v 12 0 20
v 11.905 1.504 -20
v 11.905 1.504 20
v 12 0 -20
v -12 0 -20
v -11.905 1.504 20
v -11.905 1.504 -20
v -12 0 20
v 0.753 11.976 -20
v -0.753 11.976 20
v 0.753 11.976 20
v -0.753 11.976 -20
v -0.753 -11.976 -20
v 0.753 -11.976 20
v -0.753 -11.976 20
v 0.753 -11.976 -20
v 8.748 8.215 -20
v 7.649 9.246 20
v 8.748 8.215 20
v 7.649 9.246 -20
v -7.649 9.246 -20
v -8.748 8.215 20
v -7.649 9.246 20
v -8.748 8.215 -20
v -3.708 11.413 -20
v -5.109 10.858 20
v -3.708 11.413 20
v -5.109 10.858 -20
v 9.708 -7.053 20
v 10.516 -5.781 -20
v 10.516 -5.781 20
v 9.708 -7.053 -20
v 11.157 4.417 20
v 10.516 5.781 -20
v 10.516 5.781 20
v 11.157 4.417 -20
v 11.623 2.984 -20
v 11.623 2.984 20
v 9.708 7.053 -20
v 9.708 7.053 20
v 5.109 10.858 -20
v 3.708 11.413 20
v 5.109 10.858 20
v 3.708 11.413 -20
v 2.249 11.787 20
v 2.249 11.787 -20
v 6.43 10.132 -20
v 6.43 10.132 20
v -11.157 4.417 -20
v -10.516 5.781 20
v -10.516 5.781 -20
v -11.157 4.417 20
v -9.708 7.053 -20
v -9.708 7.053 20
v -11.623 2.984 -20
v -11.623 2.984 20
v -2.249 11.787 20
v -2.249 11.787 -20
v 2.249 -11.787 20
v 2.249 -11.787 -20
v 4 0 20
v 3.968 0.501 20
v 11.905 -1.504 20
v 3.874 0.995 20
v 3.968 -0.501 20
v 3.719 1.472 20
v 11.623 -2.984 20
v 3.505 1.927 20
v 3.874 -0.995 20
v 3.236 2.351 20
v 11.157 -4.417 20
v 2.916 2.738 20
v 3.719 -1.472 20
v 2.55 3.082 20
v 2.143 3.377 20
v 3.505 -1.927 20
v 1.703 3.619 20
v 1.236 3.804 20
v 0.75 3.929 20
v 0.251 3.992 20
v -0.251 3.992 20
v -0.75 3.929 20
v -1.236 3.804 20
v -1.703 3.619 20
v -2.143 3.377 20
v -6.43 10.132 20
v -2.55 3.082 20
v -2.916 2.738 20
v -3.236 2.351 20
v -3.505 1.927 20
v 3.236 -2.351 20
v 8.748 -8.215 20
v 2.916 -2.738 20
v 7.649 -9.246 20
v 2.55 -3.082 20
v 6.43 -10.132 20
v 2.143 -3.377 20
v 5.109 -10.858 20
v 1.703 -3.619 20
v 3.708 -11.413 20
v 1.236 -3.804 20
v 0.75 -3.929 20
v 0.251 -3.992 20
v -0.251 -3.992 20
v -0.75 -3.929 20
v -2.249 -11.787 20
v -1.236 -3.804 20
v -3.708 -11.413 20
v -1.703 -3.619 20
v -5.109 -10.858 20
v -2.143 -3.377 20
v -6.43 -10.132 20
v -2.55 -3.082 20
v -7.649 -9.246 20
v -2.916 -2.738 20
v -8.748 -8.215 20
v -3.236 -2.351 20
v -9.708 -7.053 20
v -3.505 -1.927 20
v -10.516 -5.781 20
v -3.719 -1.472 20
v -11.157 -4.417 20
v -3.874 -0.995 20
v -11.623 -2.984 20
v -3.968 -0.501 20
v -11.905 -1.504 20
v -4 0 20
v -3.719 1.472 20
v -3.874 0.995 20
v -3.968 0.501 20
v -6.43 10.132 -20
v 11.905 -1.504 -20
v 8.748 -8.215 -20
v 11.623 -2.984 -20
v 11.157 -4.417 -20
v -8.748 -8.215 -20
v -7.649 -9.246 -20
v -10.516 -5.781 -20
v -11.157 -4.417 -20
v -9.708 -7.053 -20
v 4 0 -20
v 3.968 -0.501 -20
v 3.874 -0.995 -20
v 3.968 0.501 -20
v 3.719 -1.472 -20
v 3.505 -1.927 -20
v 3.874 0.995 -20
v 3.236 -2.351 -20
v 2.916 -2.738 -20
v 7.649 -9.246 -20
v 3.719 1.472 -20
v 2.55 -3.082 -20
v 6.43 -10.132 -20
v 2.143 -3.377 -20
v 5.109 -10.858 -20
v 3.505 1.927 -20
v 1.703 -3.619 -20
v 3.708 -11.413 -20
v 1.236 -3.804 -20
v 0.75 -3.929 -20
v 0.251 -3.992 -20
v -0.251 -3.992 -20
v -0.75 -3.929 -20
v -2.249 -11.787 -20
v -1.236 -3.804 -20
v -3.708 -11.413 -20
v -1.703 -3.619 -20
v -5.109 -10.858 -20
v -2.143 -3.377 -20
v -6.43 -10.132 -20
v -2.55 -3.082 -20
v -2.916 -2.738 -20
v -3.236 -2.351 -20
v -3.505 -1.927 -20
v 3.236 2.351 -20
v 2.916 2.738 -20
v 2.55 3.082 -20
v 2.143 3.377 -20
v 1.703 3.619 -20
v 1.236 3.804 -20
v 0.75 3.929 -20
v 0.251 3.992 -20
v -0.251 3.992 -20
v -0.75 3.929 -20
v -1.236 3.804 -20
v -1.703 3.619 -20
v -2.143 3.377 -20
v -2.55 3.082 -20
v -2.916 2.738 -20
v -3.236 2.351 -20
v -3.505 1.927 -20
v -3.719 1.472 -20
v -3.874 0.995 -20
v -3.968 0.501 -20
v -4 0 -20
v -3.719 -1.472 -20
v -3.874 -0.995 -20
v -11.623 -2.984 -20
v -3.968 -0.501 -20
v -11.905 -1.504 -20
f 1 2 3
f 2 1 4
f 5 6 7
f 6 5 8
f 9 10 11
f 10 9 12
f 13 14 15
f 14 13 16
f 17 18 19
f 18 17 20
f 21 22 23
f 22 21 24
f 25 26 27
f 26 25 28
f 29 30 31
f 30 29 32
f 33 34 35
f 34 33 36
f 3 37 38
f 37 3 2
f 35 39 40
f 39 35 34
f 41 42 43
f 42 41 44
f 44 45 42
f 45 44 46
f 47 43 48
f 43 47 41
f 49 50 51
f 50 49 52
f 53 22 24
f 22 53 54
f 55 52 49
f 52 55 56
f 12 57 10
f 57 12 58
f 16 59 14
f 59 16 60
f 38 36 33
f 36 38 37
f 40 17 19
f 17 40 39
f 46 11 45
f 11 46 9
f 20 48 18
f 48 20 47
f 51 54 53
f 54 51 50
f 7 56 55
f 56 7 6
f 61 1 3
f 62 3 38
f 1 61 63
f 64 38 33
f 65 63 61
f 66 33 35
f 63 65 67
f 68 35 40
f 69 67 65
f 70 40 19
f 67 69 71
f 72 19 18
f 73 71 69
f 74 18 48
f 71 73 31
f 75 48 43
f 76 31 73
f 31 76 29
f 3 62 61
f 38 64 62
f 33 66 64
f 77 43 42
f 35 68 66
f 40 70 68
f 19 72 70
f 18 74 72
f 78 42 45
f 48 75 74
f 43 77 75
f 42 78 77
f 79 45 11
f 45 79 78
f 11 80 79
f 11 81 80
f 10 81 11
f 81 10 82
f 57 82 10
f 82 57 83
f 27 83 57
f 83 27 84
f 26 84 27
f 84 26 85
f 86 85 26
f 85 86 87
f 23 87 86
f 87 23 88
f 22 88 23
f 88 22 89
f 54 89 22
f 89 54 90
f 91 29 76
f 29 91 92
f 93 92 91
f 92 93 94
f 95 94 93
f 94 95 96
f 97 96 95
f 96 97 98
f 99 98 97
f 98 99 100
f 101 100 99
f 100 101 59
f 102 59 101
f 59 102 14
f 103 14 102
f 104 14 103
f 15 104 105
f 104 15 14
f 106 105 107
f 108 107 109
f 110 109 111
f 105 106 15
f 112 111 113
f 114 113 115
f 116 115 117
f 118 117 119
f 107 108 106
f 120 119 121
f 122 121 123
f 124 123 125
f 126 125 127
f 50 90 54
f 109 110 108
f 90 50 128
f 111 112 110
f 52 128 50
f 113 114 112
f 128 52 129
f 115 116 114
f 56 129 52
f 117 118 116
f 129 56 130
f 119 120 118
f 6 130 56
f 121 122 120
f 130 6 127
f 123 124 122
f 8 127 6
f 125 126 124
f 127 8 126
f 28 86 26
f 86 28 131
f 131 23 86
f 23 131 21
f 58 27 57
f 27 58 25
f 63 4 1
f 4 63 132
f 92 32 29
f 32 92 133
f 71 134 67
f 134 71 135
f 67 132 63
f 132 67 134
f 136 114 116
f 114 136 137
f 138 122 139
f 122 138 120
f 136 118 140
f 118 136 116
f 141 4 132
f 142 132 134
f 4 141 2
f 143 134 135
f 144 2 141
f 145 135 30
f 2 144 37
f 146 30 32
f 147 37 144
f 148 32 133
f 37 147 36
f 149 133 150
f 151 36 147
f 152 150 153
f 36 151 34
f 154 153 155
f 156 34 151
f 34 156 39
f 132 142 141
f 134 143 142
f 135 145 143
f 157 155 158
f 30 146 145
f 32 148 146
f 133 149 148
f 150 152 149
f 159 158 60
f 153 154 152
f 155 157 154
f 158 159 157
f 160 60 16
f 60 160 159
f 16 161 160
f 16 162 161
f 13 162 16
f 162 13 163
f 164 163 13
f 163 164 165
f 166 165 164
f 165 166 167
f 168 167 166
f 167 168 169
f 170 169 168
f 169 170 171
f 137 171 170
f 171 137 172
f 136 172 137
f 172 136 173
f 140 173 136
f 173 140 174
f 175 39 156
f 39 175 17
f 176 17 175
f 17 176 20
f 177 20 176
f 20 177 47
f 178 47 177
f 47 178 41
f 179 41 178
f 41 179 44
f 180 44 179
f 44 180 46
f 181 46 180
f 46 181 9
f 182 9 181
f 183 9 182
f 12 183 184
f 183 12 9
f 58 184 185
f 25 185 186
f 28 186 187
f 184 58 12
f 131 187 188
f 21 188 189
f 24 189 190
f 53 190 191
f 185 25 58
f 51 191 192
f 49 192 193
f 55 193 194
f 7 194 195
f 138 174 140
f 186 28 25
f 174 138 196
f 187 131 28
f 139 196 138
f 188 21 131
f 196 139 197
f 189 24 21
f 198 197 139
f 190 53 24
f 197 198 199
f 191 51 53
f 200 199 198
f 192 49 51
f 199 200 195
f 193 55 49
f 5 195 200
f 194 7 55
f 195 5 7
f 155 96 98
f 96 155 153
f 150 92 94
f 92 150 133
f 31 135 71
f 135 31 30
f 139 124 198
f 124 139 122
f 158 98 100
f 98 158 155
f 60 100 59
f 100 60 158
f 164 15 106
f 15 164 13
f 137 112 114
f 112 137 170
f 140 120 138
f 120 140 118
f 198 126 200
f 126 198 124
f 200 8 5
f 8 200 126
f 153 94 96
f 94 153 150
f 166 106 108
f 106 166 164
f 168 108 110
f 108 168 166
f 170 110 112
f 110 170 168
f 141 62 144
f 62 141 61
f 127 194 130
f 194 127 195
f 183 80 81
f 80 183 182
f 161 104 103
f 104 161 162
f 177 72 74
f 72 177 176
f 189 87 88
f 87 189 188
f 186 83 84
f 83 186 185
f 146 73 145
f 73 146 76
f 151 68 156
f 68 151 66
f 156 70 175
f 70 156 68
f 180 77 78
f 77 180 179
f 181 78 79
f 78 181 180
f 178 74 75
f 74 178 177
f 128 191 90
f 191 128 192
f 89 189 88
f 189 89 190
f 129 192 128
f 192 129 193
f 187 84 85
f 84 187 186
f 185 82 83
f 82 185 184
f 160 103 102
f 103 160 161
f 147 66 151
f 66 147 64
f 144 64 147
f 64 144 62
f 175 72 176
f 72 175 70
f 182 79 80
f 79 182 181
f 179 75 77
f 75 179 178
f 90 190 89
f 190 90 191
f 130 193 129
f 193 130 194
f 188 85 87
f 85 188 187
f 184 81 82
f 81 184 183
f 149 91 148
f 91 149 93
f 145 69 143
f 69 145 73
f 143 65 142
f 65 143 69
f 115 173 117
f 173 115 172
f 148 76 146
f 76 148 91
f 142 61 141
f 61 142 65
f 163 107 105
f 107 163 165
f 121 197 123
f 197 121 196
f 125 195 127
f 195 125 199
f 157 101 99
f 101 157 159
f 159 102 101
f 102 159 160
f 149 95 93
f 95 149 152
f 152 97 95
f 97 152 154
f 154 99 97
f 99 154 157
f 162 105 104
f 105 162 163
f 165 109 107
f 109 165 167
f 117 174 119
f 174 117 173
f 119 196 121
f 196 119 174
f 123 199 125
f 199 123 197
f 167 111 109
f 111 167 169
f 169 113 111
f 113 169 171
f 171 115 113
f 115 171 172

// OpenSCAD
$fn = 50;


difference() {
	union() {
		translate(v = [0, 0, -20.0000000000]) {
			cylinder(h = 40, r = 12.0000000000);
		}
	}
	union() {
		translate(v = [0, 0, -100.0000000000]) {
			cylinder(h = 200, r = 4);
		}
	}
}
